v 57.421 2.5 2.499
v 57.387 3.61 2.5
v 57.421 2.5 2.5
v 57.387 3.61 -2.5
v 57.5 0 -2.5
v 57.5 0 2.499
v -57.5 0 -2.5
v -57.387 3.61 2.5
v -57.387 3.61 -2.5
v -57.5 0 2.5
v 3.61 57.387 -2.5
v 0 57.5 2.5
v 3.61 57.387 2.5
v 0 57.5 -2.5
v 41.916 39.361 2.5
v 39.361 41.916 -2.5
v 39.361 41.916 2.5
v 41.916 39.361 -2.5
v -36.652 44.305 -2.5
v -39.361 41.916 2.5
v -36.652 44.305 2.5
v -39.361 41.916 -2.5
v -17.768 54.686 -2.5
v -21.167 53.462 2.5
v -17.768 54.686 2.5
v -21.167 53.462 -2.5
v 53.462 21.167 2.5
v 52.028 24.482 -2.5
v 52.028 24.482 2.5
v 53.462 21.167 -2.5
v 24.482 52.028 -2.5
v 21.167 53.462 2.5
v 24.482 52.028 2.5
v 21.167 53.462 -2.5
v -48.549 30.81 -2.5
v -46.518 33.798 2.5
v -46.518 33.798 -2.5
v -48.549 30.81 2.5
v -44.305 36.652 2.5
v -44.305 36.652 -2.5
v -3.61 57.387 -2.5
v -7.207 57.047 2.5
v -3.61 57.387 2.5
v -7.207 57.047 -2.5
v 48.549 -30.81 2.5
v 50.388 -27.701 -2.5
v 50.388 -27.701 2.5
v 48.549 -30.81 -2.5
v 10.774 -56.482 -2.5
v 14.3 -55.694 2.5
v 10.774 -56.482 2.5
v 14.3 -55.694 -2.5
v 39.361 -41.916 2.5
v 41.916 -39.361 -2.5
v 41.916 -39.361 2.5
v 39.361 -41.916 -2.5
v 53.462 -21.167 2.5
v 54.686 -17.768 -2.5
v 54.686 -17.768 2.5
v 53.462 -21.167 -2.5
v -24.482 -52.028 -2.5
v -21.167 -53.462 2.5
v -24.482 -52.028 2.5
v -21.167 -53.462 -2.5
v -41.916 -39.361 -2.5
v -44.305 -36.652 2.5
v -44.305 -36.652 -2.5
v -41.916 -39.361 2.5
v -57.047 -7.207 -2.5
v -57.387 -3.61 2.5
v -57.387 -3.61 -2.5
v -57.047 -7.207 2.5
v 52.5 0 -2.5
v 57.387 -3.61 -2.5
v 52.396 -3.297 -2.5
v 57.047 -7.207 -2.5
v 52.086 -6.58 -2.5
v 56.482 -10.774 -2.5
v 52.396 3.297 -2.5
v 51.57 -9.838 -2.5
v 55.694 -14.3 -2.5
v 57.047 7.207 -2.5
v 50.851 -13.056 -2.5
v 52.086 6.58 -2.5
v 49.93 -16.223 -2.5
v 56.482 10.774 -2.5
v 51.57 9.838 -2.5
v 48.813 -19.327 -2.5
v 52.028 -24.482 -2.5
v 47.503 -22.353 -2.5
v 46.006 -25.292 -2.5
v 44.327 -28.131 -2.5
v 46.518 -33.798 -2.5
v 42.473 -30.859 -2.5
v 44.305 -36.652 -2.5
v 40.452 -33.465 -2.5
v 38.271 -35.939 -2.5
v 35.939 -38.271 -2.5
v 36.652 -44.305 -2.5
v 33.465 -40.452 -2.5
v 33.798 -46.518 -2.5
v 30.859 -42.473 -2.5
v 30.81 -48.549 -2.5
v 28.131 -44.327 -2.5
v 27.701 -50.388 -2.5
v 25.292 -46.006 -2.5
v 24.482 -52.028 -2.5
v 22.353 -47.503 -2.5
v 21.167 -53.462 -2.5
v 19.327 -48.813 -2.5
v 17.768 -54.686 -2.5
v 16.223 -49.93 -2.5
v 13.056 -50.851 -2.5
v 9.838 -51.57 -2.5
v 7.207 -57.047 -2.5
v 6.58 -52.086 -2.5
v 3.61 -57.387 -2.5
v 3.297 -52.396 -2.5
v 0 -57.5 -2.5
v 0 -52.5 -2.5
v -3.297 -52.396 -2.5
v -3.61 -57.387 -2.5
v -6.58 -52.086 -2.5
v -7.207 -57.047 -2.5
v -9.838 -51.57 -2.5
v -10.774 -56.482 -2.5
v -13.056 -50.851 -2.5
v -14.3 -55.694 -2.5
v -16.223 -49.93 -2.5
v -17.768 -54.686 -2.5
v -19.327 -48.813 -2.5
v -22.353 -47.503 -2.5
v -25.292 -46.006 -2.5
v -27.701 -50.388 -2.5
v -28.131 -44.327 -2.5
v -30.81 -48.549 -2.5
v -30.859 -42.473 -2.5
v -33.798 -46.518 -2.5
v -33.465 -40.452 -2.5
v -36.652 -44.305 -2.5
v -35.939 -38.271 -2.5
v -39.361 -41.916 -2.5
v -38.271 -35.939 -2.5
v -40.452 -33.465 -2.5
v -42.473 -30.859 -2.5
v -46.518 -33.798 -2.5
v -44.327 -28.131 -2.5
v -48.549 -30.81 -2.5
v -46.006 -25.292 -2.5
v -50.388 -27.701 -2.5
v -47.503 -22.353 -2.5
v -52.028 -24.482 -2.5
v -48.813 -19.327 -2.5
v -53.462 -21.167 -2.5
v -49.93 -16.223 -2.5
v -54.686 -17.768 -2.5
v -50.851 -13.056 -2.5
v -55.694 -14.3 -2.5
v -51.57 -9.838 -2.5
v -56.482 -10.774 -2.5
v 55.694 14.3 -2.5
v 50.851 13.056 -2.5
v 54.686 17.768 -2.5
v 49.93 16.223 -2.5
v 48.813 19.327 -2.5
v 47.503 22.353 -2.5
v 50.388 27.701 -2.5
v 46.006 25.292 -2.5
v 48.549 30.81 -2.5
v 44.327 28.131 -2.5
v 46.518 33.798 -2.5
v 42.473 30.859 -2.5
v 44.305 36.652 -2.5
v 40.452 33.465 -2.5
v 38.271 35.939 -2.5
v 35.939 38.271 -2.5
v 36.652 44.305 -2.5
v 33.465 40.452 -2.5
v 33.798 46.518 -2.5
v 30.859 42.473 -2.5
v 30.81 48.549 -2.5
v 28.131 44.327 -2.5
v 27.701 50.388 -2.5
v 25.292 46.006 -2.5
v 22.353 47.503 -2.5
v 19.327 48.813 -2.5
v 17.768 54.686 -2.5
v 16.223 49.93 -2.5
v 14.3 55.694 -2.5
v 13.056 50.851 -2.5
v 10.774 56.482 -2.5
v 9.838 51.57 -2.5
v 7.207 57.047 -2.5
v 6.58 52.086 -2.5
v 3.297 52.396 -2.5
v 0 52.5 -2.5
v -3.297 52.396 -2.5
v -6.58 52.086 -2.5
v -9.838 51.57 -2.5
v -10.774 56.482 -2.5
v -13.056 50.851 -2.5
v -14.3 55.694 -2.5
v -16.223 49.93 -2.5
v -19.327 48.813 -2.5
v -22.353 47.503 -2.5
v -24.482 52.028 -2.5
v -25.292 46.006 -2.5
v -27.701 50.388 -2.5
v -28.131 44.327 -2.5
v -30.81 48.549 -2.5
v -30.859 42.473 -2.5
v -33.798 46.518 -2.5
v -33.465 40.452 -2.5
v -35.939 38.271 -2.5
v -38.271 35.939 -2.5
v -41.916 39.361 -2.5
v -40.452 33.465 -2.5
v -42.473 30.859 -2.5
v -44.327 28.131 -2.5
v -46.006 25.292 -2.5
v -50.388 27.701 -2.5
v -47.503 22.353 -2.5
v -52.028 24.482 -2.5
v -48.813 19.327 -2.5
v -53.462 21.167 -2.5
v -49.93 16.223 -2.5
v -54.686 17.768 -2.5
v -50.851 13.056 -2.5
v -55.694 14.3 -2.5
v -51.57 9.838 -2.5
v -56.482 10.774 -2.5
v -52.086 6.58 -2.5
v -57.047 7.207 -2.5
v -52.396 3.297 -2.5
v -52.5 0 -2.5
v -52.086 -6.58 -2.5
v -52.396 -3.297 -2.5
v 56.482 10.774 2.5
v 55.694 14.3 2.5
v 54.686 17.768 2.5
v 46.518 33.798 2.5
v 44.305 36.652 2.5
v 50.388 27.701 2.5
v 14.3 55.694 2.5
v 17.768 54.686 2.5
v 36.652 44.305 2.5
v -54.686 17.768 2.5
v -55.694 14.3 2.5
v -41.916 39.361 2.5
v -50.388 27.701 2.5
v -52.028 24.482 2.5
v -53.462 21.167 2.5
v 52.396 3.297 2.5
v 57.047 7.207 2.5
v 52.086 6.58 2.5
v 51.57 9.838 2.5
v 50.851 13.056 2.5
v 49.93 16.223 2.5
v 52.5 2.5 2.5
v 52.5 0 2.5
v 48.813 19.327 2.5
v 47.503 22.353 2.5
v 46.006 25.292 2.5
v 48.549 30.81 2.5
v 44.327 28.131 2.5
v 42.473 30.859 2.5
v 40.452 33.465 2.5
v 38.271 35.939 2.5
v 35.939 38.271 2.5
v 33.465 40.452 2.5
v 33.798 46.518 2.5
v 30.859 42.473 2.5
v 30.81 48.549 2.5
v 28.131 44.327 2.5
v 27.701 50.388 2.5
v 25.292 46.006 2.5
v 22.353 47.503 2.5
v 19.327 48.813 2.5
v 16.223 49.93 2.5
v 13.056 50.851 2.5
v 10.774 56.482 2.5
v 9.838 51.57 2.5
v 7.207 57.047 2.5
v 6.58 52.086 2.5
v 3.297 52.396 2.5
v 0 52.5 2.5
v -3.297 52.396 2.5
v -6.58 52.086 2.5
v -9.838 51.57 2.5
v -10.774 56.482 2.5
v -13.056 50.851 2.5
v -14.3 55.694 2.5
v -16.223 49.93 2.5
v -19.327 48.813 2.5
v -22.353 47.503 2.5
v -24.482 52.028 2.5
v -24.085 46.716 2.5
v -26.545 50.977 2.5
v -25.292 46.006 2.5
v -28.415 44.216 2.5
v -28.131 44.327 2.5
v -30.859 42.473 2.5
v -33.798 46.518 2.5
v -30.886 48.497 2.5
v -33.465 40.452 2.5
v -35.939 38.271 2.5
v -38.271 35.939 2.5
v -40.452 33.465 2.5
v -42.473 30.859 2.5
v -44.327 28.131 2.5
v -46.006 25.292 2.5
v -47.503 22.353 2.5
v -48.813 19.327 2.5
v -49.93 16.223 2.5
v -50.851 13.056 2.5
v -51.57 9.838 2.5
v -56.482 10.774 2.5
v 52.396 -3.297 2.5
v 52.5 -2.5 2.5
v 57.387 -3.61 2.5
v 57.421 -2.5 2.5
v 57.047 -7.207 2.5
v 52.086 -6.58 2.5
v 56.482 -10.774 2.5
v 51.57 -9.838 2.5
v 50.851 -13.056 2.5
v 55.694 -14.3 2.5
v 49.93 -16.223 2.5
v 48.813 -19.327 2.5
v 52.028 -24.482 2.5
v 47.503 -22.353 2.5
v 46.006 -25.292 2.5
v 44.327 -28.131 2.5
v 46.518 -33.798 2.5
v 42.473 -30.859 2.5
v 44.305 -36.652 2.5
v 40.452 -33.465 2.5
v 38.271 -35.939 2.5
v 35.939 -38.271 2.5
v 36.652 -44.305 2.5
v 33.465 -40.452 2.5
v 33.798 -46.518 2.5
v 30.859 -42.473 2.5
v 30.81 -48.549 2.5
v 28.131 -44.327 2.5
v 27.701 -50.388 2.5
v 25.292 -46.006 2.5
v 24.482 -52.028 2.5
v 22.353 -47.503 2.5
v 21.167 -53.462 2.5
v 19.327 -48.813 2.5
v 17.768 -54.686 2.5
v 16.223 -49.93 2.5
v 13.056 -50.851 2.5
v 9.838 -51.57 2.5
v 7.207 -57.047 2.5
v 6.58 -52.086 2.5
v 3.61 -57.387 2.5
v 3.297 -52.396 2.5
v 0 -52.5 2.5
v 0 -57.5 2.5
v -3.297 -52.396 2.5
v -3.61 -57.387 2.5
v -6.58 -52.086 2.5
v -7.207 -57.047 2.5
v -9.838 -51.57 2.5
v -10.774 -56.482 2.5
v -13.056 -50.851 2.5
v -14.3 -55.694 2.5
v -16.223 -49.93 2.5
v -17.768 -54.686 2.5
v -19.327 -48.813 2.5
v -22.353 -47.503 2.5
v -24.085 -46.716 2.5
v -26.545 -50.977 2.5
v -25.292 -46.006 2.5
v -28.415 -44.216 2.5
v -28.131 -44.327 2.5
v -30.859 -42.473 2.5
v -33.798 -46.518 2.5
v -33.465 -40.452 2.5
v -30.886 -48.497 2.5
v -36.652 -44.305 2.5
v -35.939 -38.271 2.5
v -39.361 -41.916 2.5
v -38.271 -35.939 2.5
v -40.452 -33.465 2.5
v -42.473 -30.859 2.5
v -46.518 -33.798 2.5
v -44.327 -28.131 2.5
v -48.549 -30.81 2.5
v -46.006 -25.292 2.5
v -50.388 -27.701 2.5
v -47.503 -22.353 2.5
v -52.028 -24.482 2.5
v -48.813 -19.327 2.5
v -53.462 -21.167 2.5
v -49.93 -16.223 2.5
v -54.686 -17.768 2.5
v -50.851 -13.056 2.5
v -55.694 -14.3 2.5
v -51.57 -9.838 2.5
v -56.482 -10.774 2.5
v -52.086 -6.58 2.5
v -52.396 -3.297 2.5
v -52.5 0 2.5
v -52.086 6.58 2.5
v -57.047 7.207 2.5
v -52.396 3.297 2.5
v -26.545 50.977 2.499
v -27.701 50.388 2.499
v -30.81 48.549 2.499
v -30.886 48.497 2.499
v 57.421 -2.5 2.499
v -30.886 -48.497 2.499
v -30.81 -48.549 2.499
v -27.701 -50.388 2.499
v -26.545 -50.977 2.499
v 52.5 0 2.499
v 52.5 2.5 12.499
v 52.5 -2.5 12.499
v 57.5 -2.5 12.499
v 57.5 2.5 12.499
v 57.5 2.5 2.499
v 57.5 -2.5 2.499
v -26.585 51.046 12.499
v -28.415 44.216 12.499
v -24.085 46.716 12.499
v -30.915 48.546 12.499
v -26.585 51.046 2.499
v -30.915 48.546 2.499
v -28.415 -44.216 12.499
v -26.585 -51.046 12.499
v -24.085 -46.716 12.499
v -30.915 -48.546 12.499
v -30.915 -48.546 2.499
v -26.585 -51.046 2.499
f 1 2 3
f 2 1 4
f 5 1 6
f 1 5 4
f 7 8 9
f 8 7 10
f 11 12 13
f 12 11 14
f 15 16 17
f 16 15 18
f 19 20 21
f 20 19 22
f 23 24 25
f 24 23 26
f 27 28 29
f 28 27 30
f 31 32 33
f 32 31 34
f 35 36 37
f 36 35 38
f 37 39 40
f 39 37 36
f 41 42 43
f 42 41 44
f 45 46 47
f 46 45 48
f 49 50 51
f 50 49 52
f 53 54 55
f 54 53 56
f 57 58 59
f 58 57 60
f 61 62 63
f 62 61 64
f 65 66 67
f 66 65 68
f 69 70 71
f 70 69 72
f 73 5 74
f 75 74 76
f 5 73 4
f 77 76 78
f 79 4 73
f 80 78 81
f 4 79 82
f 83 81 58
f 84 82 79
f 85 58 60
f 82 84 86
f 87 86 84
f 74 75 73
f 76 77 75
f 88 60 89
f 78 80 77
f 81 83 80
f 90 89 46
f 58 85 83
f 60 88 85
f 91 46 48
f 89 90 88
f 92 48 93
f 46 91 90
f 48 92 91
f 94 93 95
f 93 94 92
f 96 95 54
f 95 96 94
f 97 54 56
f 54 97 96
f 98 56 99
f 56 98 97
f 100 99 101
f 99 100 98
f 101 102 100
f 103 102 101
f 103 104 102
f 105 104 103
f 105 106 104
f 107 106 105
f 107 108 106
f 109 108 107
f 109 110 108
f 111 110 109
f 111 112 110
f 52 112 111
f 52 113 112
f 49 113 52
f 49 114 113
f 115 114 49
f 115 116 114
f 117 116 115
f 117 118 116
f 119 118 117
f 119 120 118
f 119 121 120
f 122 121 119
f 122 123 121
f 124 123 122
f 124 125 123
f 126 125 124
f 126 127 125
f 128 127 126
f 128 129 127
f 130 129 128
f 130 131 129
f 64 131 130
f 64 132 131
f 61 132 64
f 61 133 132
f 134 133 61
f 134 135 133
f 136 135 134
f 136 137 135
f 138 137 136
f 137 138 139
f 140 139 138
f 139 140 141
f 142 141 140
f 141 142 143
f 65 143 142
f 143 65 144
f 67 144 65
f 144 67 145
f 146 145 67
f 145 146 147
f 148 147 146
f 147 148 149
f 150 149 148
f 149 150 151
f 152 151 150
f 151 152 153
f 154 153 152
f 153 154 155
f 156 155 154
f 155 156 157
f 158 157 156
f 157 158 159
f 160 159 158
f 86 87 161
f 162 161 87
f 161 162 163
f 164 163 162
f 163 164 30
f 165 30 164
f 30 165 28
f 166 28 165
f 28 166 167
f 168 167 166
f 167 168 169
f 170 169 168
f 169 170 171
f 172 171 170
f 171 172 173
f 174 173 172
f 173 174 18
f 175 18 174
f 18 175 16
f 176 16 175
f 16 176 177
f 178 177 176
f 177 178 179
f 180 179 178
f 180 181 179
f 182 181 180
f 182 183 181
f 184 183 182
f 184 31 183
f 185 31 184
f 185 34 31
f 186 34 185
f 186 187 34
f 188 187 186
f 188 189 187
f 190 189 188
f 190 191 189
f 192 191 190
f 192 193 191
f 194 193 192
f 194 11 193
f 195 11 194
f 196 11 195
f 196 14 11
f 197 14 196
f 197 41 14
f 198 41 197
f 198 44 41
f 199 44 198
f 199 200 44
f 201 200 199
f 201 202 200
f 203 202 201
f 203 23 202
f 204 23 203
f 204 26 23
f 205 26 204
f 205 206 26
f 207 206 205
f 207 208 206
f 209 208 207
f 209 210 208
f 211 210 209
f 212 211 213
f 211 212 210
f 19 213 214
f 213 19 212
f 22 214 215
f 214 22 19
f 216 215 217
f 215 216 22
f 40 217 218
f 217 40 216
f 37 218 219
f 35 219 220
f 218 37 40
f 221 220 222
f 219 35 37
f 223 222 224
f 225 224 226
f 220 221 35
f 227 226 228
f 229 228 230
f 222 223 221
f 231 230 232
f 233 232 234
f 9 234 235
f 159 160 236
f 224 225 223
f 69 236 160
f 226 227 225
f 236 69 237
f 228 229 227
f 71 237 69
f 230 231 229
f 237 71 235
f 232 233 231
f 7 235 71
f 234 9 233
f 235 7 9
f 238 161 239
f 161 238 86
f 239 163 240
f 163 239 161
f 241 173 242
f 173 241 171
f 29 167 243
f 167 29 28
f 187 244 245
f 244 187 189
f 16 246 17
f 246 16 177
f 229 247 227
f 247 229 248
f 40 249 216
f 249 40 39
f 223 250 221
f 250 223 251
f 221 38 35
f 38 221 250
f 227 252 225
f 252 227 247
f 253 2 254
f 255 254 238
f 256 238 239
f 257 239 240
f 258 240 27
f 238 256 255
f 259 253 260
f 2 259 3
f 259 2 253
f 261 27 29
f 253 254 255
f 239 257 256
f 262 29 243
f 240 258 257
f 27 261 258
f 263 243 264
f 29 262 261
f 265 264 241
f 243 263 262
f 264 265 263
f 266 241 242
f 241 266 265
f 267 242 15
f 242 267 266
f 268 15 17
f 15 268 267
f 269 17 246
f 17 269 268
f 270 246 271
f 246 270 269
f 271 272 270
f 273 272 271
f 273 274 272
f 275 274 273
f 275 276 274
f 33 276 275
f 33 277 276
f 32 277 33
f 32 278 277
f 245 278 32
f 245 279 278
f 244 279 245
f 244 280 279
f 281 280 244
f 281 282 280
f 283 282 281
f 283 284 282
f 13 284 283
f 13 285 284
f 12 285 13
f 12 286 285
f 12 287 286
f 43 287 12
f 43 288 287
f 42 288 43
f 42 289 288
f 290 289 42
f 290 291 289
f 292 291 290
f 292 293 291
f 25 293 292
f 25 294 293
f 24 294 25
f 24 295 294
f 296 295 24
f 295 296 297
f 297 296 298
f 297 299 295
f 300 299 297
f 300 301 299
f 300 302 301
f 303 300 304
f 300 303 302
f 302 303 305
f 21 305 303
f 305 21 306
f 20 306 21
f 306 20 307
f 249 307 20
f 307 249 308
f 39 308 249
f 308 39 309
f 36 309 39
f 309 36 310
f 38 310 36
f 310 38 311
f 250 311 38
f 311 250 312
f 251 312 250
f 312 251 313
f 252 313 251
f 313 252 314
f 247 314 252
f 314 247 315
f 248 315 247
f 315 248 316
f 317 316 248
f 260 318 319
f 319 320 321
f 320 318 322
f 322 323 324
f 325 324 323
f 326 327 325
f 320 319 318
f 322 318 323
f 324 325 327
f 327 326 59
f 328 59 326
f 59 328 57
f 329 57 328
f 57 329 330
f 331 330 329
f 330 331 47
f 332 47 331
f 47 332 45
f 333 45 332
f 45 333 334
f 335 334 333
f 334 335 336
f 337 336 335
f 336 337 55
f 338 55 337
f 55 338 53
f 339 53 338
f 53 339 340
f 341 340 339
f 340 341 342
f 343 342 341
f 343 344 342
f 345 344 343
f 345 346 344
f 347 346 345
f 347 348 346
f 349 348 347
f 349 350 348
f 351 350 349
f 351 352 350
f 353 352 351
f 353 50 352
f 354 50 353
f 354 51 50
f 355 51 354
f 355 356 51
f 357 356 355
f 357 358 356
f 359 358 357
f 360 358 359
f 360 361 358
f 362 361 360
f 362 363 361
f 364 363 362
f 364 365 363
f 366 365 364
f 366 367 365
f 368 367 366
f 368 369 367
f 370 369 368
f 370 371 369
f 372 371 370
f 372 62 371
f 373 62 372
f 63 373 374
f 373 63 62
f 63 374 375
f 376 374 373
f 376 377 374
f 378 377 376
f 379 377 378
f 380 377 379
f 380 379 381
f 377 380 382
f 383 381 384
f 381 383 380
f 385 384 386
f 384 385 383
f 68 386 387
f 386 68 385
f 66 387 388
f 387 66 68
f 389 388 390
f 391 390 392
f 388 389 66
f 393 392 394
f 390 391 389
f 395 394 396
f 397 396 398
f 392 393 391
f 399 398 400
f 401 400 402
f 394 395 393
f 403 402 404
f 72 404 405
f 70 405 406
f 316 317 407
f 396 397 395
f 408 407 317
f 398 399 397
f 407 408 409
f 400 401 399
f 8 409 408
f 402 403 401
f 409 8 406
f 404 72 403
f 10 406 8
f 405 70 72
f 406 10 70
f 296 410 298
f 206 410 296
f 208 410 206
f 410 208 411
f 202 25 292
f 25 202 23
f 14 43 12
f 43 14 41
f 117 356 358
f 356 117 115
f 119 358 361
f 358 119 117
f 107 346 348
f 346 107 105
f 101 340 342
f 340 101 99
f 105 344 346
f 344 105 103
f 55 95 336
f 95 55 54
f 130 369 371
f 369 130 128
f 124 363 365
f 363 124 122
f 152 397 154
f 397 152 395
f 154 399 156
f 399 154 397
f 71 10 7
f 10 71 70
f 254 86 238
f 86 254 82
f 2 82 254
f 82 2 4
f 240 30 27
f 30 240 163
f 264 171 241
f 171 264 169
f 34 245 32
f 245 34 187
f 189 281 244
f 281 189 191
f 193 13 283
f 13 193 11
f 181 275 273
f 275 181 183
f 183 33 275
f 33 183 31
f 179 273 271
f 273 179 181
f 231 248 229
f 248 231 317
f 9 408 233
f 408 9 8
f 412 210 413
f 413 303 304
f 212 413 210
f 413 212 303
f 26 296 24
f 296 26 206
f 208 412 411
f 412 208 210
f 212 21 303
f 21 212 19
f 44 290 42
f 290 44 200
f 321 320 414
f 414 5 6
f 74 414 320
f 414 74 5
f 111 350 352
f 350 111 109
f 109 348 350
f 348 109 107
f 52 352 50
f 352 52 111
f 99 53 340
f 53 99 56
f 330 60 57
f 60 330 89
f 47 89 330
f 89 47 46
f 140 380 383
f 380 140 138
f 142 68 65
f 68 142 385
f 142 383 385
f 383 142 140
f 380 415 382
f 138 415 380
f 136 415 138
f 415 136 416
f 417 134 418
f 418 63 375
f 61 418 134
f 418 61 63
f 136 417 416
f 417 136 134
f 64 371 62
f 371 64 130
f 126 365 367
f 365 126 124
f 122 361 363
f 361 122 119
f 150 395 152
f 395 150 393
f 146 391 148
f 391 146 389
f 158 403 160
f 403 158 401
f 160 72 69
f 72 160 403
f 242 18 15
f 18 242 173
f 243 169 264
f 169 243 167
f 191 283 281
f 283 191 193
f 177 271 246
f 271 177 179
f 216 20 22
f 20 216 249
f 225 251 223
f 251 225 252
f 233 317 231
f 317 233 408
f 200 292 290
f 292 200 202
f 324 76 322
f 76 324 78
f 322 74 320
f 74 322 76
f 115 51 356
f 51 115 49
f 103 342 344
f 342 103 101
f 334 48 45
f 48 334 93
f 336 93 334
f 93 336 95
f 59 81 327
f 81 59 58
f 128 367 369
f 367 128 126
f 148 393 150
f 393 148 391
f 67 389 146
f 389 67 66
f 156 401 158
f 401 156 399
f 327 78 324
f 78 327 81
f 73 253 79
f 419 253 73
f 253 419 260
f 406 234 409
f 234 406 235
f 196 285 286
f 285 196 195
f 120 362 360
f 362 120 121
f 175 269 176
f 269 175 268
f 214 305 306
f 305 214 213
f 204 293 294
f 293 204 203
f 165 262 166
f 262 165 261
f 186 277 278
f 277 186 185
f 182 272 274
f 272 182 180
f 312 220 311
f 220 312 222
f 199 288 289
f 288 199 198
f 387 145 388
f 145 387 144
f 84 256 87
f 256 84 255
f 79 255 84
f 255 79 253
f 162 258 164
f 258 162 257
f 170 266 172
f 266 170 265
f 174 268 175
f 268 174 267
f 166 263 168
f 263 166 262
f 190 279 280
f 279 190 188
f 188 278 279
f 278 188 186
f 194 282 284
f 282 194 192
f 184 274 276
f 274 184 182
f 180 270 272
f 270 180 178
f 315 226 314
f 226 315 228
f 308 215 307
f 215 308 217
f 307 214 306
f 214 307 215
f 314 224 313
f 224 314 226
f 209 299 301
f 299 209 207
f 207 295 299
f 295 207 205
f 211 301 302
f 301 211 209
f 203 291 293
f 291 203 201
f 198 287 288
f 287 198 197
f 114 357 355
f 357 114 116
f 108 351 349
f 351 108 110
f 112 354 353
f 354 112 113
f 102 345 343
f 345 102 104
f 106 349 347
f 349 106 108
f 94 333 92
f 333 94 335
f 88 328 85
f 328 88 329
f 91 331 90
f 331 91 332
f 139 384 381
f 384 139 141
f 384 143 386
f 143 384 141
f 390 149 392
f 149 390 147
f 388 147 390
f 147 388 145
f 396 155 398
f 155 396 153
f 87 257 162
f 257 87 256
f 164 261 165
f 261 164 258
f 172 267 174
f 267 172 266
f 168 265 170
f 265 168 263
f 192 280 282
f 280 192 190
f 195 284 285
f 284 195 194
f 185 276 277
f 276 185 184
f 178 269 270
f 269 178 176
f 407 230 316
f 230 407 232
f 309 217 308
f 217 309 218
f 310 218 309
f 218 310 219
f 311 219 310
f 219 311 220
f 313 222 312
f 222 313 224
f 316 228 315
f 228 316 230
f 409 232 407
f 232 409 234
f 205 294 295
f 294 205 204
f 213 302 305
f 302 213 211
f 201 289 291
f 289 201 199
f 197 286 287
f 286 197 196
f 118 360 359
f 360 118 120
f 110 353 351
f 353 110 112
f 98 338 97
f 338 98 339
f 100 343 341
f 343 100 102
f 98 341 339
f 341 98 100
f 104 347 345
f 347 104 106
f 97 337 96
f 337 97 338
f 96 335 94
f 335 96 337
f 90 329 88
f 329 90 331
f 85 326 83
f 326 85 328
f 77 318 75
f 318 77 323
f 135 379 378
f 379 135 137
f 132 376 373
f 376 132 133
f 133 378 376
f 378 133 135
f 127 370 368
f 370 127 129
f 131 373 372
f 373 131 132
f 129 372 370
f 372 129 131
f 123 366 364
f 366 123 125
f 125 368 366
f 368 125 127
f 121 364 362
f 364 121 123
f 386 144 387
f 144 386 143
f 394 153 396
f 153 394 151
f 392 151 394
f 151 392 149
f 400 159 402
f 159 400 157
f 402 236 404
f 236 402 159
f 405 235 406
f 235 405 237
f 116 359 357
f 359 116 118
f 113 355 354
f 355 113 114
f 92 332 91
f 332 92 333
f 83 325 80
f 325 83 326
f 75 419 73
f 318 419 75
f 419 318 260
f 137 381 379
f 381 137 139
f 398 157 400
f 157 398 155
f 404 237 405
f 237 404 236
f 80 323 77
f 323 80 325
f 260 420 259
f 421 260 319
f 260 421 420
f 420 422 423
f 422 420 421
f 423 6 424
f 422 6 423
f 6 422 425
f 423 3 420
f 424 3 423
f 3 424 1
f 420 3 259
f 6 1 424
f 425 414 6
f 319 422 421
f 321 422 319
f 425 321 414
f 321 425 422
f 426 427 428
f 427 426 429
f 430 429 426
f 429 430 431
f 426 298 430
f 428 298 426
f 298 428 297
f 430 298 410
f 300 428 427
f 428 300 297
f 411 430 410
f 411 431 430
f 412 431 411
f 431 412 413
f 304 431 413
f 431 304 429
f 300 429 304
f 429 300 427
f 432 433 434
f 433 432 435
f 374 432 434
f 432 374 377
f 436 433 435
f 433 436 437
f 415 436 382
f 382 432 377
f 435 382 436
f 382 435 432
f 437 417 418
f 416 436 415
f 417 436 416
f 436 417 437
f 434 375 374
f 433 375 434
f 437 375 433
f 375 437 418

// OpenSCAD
$fn=100;

module MakeClip(pos, deg, clipHeight, ringHeight) {
    clipY = (ringHeight / 2) + (clipHeight / 2);
    echo(clipY);
    
    color("Green") {
        rotate([0, 0, deg]) {
            translate([pos, 0, clipY - 0.001]) {
                
                cube(size=[5, 5, clipHeight], center=true);
            }
        }
    };
}


module AntiProtect(diam, width, ringHeight, clipHeight, $fn=100) {
    // Temporary variables
    ring = diam + width;
    clipPos = (diam + (width/2)) / 2;

    difference() {
        cylinder(ringHeight, d=ring, center=true);
        cylinder(ringHeight+2, d=diam, center=true);
    }
    
    for (deg = [0: 360 / 3: 359]) {
        MakeClip(clipPos, deg, clipHeight, ringHeight);
    }
}

AntiProtect(105, 10, 5, 10);

echo(version=version());
